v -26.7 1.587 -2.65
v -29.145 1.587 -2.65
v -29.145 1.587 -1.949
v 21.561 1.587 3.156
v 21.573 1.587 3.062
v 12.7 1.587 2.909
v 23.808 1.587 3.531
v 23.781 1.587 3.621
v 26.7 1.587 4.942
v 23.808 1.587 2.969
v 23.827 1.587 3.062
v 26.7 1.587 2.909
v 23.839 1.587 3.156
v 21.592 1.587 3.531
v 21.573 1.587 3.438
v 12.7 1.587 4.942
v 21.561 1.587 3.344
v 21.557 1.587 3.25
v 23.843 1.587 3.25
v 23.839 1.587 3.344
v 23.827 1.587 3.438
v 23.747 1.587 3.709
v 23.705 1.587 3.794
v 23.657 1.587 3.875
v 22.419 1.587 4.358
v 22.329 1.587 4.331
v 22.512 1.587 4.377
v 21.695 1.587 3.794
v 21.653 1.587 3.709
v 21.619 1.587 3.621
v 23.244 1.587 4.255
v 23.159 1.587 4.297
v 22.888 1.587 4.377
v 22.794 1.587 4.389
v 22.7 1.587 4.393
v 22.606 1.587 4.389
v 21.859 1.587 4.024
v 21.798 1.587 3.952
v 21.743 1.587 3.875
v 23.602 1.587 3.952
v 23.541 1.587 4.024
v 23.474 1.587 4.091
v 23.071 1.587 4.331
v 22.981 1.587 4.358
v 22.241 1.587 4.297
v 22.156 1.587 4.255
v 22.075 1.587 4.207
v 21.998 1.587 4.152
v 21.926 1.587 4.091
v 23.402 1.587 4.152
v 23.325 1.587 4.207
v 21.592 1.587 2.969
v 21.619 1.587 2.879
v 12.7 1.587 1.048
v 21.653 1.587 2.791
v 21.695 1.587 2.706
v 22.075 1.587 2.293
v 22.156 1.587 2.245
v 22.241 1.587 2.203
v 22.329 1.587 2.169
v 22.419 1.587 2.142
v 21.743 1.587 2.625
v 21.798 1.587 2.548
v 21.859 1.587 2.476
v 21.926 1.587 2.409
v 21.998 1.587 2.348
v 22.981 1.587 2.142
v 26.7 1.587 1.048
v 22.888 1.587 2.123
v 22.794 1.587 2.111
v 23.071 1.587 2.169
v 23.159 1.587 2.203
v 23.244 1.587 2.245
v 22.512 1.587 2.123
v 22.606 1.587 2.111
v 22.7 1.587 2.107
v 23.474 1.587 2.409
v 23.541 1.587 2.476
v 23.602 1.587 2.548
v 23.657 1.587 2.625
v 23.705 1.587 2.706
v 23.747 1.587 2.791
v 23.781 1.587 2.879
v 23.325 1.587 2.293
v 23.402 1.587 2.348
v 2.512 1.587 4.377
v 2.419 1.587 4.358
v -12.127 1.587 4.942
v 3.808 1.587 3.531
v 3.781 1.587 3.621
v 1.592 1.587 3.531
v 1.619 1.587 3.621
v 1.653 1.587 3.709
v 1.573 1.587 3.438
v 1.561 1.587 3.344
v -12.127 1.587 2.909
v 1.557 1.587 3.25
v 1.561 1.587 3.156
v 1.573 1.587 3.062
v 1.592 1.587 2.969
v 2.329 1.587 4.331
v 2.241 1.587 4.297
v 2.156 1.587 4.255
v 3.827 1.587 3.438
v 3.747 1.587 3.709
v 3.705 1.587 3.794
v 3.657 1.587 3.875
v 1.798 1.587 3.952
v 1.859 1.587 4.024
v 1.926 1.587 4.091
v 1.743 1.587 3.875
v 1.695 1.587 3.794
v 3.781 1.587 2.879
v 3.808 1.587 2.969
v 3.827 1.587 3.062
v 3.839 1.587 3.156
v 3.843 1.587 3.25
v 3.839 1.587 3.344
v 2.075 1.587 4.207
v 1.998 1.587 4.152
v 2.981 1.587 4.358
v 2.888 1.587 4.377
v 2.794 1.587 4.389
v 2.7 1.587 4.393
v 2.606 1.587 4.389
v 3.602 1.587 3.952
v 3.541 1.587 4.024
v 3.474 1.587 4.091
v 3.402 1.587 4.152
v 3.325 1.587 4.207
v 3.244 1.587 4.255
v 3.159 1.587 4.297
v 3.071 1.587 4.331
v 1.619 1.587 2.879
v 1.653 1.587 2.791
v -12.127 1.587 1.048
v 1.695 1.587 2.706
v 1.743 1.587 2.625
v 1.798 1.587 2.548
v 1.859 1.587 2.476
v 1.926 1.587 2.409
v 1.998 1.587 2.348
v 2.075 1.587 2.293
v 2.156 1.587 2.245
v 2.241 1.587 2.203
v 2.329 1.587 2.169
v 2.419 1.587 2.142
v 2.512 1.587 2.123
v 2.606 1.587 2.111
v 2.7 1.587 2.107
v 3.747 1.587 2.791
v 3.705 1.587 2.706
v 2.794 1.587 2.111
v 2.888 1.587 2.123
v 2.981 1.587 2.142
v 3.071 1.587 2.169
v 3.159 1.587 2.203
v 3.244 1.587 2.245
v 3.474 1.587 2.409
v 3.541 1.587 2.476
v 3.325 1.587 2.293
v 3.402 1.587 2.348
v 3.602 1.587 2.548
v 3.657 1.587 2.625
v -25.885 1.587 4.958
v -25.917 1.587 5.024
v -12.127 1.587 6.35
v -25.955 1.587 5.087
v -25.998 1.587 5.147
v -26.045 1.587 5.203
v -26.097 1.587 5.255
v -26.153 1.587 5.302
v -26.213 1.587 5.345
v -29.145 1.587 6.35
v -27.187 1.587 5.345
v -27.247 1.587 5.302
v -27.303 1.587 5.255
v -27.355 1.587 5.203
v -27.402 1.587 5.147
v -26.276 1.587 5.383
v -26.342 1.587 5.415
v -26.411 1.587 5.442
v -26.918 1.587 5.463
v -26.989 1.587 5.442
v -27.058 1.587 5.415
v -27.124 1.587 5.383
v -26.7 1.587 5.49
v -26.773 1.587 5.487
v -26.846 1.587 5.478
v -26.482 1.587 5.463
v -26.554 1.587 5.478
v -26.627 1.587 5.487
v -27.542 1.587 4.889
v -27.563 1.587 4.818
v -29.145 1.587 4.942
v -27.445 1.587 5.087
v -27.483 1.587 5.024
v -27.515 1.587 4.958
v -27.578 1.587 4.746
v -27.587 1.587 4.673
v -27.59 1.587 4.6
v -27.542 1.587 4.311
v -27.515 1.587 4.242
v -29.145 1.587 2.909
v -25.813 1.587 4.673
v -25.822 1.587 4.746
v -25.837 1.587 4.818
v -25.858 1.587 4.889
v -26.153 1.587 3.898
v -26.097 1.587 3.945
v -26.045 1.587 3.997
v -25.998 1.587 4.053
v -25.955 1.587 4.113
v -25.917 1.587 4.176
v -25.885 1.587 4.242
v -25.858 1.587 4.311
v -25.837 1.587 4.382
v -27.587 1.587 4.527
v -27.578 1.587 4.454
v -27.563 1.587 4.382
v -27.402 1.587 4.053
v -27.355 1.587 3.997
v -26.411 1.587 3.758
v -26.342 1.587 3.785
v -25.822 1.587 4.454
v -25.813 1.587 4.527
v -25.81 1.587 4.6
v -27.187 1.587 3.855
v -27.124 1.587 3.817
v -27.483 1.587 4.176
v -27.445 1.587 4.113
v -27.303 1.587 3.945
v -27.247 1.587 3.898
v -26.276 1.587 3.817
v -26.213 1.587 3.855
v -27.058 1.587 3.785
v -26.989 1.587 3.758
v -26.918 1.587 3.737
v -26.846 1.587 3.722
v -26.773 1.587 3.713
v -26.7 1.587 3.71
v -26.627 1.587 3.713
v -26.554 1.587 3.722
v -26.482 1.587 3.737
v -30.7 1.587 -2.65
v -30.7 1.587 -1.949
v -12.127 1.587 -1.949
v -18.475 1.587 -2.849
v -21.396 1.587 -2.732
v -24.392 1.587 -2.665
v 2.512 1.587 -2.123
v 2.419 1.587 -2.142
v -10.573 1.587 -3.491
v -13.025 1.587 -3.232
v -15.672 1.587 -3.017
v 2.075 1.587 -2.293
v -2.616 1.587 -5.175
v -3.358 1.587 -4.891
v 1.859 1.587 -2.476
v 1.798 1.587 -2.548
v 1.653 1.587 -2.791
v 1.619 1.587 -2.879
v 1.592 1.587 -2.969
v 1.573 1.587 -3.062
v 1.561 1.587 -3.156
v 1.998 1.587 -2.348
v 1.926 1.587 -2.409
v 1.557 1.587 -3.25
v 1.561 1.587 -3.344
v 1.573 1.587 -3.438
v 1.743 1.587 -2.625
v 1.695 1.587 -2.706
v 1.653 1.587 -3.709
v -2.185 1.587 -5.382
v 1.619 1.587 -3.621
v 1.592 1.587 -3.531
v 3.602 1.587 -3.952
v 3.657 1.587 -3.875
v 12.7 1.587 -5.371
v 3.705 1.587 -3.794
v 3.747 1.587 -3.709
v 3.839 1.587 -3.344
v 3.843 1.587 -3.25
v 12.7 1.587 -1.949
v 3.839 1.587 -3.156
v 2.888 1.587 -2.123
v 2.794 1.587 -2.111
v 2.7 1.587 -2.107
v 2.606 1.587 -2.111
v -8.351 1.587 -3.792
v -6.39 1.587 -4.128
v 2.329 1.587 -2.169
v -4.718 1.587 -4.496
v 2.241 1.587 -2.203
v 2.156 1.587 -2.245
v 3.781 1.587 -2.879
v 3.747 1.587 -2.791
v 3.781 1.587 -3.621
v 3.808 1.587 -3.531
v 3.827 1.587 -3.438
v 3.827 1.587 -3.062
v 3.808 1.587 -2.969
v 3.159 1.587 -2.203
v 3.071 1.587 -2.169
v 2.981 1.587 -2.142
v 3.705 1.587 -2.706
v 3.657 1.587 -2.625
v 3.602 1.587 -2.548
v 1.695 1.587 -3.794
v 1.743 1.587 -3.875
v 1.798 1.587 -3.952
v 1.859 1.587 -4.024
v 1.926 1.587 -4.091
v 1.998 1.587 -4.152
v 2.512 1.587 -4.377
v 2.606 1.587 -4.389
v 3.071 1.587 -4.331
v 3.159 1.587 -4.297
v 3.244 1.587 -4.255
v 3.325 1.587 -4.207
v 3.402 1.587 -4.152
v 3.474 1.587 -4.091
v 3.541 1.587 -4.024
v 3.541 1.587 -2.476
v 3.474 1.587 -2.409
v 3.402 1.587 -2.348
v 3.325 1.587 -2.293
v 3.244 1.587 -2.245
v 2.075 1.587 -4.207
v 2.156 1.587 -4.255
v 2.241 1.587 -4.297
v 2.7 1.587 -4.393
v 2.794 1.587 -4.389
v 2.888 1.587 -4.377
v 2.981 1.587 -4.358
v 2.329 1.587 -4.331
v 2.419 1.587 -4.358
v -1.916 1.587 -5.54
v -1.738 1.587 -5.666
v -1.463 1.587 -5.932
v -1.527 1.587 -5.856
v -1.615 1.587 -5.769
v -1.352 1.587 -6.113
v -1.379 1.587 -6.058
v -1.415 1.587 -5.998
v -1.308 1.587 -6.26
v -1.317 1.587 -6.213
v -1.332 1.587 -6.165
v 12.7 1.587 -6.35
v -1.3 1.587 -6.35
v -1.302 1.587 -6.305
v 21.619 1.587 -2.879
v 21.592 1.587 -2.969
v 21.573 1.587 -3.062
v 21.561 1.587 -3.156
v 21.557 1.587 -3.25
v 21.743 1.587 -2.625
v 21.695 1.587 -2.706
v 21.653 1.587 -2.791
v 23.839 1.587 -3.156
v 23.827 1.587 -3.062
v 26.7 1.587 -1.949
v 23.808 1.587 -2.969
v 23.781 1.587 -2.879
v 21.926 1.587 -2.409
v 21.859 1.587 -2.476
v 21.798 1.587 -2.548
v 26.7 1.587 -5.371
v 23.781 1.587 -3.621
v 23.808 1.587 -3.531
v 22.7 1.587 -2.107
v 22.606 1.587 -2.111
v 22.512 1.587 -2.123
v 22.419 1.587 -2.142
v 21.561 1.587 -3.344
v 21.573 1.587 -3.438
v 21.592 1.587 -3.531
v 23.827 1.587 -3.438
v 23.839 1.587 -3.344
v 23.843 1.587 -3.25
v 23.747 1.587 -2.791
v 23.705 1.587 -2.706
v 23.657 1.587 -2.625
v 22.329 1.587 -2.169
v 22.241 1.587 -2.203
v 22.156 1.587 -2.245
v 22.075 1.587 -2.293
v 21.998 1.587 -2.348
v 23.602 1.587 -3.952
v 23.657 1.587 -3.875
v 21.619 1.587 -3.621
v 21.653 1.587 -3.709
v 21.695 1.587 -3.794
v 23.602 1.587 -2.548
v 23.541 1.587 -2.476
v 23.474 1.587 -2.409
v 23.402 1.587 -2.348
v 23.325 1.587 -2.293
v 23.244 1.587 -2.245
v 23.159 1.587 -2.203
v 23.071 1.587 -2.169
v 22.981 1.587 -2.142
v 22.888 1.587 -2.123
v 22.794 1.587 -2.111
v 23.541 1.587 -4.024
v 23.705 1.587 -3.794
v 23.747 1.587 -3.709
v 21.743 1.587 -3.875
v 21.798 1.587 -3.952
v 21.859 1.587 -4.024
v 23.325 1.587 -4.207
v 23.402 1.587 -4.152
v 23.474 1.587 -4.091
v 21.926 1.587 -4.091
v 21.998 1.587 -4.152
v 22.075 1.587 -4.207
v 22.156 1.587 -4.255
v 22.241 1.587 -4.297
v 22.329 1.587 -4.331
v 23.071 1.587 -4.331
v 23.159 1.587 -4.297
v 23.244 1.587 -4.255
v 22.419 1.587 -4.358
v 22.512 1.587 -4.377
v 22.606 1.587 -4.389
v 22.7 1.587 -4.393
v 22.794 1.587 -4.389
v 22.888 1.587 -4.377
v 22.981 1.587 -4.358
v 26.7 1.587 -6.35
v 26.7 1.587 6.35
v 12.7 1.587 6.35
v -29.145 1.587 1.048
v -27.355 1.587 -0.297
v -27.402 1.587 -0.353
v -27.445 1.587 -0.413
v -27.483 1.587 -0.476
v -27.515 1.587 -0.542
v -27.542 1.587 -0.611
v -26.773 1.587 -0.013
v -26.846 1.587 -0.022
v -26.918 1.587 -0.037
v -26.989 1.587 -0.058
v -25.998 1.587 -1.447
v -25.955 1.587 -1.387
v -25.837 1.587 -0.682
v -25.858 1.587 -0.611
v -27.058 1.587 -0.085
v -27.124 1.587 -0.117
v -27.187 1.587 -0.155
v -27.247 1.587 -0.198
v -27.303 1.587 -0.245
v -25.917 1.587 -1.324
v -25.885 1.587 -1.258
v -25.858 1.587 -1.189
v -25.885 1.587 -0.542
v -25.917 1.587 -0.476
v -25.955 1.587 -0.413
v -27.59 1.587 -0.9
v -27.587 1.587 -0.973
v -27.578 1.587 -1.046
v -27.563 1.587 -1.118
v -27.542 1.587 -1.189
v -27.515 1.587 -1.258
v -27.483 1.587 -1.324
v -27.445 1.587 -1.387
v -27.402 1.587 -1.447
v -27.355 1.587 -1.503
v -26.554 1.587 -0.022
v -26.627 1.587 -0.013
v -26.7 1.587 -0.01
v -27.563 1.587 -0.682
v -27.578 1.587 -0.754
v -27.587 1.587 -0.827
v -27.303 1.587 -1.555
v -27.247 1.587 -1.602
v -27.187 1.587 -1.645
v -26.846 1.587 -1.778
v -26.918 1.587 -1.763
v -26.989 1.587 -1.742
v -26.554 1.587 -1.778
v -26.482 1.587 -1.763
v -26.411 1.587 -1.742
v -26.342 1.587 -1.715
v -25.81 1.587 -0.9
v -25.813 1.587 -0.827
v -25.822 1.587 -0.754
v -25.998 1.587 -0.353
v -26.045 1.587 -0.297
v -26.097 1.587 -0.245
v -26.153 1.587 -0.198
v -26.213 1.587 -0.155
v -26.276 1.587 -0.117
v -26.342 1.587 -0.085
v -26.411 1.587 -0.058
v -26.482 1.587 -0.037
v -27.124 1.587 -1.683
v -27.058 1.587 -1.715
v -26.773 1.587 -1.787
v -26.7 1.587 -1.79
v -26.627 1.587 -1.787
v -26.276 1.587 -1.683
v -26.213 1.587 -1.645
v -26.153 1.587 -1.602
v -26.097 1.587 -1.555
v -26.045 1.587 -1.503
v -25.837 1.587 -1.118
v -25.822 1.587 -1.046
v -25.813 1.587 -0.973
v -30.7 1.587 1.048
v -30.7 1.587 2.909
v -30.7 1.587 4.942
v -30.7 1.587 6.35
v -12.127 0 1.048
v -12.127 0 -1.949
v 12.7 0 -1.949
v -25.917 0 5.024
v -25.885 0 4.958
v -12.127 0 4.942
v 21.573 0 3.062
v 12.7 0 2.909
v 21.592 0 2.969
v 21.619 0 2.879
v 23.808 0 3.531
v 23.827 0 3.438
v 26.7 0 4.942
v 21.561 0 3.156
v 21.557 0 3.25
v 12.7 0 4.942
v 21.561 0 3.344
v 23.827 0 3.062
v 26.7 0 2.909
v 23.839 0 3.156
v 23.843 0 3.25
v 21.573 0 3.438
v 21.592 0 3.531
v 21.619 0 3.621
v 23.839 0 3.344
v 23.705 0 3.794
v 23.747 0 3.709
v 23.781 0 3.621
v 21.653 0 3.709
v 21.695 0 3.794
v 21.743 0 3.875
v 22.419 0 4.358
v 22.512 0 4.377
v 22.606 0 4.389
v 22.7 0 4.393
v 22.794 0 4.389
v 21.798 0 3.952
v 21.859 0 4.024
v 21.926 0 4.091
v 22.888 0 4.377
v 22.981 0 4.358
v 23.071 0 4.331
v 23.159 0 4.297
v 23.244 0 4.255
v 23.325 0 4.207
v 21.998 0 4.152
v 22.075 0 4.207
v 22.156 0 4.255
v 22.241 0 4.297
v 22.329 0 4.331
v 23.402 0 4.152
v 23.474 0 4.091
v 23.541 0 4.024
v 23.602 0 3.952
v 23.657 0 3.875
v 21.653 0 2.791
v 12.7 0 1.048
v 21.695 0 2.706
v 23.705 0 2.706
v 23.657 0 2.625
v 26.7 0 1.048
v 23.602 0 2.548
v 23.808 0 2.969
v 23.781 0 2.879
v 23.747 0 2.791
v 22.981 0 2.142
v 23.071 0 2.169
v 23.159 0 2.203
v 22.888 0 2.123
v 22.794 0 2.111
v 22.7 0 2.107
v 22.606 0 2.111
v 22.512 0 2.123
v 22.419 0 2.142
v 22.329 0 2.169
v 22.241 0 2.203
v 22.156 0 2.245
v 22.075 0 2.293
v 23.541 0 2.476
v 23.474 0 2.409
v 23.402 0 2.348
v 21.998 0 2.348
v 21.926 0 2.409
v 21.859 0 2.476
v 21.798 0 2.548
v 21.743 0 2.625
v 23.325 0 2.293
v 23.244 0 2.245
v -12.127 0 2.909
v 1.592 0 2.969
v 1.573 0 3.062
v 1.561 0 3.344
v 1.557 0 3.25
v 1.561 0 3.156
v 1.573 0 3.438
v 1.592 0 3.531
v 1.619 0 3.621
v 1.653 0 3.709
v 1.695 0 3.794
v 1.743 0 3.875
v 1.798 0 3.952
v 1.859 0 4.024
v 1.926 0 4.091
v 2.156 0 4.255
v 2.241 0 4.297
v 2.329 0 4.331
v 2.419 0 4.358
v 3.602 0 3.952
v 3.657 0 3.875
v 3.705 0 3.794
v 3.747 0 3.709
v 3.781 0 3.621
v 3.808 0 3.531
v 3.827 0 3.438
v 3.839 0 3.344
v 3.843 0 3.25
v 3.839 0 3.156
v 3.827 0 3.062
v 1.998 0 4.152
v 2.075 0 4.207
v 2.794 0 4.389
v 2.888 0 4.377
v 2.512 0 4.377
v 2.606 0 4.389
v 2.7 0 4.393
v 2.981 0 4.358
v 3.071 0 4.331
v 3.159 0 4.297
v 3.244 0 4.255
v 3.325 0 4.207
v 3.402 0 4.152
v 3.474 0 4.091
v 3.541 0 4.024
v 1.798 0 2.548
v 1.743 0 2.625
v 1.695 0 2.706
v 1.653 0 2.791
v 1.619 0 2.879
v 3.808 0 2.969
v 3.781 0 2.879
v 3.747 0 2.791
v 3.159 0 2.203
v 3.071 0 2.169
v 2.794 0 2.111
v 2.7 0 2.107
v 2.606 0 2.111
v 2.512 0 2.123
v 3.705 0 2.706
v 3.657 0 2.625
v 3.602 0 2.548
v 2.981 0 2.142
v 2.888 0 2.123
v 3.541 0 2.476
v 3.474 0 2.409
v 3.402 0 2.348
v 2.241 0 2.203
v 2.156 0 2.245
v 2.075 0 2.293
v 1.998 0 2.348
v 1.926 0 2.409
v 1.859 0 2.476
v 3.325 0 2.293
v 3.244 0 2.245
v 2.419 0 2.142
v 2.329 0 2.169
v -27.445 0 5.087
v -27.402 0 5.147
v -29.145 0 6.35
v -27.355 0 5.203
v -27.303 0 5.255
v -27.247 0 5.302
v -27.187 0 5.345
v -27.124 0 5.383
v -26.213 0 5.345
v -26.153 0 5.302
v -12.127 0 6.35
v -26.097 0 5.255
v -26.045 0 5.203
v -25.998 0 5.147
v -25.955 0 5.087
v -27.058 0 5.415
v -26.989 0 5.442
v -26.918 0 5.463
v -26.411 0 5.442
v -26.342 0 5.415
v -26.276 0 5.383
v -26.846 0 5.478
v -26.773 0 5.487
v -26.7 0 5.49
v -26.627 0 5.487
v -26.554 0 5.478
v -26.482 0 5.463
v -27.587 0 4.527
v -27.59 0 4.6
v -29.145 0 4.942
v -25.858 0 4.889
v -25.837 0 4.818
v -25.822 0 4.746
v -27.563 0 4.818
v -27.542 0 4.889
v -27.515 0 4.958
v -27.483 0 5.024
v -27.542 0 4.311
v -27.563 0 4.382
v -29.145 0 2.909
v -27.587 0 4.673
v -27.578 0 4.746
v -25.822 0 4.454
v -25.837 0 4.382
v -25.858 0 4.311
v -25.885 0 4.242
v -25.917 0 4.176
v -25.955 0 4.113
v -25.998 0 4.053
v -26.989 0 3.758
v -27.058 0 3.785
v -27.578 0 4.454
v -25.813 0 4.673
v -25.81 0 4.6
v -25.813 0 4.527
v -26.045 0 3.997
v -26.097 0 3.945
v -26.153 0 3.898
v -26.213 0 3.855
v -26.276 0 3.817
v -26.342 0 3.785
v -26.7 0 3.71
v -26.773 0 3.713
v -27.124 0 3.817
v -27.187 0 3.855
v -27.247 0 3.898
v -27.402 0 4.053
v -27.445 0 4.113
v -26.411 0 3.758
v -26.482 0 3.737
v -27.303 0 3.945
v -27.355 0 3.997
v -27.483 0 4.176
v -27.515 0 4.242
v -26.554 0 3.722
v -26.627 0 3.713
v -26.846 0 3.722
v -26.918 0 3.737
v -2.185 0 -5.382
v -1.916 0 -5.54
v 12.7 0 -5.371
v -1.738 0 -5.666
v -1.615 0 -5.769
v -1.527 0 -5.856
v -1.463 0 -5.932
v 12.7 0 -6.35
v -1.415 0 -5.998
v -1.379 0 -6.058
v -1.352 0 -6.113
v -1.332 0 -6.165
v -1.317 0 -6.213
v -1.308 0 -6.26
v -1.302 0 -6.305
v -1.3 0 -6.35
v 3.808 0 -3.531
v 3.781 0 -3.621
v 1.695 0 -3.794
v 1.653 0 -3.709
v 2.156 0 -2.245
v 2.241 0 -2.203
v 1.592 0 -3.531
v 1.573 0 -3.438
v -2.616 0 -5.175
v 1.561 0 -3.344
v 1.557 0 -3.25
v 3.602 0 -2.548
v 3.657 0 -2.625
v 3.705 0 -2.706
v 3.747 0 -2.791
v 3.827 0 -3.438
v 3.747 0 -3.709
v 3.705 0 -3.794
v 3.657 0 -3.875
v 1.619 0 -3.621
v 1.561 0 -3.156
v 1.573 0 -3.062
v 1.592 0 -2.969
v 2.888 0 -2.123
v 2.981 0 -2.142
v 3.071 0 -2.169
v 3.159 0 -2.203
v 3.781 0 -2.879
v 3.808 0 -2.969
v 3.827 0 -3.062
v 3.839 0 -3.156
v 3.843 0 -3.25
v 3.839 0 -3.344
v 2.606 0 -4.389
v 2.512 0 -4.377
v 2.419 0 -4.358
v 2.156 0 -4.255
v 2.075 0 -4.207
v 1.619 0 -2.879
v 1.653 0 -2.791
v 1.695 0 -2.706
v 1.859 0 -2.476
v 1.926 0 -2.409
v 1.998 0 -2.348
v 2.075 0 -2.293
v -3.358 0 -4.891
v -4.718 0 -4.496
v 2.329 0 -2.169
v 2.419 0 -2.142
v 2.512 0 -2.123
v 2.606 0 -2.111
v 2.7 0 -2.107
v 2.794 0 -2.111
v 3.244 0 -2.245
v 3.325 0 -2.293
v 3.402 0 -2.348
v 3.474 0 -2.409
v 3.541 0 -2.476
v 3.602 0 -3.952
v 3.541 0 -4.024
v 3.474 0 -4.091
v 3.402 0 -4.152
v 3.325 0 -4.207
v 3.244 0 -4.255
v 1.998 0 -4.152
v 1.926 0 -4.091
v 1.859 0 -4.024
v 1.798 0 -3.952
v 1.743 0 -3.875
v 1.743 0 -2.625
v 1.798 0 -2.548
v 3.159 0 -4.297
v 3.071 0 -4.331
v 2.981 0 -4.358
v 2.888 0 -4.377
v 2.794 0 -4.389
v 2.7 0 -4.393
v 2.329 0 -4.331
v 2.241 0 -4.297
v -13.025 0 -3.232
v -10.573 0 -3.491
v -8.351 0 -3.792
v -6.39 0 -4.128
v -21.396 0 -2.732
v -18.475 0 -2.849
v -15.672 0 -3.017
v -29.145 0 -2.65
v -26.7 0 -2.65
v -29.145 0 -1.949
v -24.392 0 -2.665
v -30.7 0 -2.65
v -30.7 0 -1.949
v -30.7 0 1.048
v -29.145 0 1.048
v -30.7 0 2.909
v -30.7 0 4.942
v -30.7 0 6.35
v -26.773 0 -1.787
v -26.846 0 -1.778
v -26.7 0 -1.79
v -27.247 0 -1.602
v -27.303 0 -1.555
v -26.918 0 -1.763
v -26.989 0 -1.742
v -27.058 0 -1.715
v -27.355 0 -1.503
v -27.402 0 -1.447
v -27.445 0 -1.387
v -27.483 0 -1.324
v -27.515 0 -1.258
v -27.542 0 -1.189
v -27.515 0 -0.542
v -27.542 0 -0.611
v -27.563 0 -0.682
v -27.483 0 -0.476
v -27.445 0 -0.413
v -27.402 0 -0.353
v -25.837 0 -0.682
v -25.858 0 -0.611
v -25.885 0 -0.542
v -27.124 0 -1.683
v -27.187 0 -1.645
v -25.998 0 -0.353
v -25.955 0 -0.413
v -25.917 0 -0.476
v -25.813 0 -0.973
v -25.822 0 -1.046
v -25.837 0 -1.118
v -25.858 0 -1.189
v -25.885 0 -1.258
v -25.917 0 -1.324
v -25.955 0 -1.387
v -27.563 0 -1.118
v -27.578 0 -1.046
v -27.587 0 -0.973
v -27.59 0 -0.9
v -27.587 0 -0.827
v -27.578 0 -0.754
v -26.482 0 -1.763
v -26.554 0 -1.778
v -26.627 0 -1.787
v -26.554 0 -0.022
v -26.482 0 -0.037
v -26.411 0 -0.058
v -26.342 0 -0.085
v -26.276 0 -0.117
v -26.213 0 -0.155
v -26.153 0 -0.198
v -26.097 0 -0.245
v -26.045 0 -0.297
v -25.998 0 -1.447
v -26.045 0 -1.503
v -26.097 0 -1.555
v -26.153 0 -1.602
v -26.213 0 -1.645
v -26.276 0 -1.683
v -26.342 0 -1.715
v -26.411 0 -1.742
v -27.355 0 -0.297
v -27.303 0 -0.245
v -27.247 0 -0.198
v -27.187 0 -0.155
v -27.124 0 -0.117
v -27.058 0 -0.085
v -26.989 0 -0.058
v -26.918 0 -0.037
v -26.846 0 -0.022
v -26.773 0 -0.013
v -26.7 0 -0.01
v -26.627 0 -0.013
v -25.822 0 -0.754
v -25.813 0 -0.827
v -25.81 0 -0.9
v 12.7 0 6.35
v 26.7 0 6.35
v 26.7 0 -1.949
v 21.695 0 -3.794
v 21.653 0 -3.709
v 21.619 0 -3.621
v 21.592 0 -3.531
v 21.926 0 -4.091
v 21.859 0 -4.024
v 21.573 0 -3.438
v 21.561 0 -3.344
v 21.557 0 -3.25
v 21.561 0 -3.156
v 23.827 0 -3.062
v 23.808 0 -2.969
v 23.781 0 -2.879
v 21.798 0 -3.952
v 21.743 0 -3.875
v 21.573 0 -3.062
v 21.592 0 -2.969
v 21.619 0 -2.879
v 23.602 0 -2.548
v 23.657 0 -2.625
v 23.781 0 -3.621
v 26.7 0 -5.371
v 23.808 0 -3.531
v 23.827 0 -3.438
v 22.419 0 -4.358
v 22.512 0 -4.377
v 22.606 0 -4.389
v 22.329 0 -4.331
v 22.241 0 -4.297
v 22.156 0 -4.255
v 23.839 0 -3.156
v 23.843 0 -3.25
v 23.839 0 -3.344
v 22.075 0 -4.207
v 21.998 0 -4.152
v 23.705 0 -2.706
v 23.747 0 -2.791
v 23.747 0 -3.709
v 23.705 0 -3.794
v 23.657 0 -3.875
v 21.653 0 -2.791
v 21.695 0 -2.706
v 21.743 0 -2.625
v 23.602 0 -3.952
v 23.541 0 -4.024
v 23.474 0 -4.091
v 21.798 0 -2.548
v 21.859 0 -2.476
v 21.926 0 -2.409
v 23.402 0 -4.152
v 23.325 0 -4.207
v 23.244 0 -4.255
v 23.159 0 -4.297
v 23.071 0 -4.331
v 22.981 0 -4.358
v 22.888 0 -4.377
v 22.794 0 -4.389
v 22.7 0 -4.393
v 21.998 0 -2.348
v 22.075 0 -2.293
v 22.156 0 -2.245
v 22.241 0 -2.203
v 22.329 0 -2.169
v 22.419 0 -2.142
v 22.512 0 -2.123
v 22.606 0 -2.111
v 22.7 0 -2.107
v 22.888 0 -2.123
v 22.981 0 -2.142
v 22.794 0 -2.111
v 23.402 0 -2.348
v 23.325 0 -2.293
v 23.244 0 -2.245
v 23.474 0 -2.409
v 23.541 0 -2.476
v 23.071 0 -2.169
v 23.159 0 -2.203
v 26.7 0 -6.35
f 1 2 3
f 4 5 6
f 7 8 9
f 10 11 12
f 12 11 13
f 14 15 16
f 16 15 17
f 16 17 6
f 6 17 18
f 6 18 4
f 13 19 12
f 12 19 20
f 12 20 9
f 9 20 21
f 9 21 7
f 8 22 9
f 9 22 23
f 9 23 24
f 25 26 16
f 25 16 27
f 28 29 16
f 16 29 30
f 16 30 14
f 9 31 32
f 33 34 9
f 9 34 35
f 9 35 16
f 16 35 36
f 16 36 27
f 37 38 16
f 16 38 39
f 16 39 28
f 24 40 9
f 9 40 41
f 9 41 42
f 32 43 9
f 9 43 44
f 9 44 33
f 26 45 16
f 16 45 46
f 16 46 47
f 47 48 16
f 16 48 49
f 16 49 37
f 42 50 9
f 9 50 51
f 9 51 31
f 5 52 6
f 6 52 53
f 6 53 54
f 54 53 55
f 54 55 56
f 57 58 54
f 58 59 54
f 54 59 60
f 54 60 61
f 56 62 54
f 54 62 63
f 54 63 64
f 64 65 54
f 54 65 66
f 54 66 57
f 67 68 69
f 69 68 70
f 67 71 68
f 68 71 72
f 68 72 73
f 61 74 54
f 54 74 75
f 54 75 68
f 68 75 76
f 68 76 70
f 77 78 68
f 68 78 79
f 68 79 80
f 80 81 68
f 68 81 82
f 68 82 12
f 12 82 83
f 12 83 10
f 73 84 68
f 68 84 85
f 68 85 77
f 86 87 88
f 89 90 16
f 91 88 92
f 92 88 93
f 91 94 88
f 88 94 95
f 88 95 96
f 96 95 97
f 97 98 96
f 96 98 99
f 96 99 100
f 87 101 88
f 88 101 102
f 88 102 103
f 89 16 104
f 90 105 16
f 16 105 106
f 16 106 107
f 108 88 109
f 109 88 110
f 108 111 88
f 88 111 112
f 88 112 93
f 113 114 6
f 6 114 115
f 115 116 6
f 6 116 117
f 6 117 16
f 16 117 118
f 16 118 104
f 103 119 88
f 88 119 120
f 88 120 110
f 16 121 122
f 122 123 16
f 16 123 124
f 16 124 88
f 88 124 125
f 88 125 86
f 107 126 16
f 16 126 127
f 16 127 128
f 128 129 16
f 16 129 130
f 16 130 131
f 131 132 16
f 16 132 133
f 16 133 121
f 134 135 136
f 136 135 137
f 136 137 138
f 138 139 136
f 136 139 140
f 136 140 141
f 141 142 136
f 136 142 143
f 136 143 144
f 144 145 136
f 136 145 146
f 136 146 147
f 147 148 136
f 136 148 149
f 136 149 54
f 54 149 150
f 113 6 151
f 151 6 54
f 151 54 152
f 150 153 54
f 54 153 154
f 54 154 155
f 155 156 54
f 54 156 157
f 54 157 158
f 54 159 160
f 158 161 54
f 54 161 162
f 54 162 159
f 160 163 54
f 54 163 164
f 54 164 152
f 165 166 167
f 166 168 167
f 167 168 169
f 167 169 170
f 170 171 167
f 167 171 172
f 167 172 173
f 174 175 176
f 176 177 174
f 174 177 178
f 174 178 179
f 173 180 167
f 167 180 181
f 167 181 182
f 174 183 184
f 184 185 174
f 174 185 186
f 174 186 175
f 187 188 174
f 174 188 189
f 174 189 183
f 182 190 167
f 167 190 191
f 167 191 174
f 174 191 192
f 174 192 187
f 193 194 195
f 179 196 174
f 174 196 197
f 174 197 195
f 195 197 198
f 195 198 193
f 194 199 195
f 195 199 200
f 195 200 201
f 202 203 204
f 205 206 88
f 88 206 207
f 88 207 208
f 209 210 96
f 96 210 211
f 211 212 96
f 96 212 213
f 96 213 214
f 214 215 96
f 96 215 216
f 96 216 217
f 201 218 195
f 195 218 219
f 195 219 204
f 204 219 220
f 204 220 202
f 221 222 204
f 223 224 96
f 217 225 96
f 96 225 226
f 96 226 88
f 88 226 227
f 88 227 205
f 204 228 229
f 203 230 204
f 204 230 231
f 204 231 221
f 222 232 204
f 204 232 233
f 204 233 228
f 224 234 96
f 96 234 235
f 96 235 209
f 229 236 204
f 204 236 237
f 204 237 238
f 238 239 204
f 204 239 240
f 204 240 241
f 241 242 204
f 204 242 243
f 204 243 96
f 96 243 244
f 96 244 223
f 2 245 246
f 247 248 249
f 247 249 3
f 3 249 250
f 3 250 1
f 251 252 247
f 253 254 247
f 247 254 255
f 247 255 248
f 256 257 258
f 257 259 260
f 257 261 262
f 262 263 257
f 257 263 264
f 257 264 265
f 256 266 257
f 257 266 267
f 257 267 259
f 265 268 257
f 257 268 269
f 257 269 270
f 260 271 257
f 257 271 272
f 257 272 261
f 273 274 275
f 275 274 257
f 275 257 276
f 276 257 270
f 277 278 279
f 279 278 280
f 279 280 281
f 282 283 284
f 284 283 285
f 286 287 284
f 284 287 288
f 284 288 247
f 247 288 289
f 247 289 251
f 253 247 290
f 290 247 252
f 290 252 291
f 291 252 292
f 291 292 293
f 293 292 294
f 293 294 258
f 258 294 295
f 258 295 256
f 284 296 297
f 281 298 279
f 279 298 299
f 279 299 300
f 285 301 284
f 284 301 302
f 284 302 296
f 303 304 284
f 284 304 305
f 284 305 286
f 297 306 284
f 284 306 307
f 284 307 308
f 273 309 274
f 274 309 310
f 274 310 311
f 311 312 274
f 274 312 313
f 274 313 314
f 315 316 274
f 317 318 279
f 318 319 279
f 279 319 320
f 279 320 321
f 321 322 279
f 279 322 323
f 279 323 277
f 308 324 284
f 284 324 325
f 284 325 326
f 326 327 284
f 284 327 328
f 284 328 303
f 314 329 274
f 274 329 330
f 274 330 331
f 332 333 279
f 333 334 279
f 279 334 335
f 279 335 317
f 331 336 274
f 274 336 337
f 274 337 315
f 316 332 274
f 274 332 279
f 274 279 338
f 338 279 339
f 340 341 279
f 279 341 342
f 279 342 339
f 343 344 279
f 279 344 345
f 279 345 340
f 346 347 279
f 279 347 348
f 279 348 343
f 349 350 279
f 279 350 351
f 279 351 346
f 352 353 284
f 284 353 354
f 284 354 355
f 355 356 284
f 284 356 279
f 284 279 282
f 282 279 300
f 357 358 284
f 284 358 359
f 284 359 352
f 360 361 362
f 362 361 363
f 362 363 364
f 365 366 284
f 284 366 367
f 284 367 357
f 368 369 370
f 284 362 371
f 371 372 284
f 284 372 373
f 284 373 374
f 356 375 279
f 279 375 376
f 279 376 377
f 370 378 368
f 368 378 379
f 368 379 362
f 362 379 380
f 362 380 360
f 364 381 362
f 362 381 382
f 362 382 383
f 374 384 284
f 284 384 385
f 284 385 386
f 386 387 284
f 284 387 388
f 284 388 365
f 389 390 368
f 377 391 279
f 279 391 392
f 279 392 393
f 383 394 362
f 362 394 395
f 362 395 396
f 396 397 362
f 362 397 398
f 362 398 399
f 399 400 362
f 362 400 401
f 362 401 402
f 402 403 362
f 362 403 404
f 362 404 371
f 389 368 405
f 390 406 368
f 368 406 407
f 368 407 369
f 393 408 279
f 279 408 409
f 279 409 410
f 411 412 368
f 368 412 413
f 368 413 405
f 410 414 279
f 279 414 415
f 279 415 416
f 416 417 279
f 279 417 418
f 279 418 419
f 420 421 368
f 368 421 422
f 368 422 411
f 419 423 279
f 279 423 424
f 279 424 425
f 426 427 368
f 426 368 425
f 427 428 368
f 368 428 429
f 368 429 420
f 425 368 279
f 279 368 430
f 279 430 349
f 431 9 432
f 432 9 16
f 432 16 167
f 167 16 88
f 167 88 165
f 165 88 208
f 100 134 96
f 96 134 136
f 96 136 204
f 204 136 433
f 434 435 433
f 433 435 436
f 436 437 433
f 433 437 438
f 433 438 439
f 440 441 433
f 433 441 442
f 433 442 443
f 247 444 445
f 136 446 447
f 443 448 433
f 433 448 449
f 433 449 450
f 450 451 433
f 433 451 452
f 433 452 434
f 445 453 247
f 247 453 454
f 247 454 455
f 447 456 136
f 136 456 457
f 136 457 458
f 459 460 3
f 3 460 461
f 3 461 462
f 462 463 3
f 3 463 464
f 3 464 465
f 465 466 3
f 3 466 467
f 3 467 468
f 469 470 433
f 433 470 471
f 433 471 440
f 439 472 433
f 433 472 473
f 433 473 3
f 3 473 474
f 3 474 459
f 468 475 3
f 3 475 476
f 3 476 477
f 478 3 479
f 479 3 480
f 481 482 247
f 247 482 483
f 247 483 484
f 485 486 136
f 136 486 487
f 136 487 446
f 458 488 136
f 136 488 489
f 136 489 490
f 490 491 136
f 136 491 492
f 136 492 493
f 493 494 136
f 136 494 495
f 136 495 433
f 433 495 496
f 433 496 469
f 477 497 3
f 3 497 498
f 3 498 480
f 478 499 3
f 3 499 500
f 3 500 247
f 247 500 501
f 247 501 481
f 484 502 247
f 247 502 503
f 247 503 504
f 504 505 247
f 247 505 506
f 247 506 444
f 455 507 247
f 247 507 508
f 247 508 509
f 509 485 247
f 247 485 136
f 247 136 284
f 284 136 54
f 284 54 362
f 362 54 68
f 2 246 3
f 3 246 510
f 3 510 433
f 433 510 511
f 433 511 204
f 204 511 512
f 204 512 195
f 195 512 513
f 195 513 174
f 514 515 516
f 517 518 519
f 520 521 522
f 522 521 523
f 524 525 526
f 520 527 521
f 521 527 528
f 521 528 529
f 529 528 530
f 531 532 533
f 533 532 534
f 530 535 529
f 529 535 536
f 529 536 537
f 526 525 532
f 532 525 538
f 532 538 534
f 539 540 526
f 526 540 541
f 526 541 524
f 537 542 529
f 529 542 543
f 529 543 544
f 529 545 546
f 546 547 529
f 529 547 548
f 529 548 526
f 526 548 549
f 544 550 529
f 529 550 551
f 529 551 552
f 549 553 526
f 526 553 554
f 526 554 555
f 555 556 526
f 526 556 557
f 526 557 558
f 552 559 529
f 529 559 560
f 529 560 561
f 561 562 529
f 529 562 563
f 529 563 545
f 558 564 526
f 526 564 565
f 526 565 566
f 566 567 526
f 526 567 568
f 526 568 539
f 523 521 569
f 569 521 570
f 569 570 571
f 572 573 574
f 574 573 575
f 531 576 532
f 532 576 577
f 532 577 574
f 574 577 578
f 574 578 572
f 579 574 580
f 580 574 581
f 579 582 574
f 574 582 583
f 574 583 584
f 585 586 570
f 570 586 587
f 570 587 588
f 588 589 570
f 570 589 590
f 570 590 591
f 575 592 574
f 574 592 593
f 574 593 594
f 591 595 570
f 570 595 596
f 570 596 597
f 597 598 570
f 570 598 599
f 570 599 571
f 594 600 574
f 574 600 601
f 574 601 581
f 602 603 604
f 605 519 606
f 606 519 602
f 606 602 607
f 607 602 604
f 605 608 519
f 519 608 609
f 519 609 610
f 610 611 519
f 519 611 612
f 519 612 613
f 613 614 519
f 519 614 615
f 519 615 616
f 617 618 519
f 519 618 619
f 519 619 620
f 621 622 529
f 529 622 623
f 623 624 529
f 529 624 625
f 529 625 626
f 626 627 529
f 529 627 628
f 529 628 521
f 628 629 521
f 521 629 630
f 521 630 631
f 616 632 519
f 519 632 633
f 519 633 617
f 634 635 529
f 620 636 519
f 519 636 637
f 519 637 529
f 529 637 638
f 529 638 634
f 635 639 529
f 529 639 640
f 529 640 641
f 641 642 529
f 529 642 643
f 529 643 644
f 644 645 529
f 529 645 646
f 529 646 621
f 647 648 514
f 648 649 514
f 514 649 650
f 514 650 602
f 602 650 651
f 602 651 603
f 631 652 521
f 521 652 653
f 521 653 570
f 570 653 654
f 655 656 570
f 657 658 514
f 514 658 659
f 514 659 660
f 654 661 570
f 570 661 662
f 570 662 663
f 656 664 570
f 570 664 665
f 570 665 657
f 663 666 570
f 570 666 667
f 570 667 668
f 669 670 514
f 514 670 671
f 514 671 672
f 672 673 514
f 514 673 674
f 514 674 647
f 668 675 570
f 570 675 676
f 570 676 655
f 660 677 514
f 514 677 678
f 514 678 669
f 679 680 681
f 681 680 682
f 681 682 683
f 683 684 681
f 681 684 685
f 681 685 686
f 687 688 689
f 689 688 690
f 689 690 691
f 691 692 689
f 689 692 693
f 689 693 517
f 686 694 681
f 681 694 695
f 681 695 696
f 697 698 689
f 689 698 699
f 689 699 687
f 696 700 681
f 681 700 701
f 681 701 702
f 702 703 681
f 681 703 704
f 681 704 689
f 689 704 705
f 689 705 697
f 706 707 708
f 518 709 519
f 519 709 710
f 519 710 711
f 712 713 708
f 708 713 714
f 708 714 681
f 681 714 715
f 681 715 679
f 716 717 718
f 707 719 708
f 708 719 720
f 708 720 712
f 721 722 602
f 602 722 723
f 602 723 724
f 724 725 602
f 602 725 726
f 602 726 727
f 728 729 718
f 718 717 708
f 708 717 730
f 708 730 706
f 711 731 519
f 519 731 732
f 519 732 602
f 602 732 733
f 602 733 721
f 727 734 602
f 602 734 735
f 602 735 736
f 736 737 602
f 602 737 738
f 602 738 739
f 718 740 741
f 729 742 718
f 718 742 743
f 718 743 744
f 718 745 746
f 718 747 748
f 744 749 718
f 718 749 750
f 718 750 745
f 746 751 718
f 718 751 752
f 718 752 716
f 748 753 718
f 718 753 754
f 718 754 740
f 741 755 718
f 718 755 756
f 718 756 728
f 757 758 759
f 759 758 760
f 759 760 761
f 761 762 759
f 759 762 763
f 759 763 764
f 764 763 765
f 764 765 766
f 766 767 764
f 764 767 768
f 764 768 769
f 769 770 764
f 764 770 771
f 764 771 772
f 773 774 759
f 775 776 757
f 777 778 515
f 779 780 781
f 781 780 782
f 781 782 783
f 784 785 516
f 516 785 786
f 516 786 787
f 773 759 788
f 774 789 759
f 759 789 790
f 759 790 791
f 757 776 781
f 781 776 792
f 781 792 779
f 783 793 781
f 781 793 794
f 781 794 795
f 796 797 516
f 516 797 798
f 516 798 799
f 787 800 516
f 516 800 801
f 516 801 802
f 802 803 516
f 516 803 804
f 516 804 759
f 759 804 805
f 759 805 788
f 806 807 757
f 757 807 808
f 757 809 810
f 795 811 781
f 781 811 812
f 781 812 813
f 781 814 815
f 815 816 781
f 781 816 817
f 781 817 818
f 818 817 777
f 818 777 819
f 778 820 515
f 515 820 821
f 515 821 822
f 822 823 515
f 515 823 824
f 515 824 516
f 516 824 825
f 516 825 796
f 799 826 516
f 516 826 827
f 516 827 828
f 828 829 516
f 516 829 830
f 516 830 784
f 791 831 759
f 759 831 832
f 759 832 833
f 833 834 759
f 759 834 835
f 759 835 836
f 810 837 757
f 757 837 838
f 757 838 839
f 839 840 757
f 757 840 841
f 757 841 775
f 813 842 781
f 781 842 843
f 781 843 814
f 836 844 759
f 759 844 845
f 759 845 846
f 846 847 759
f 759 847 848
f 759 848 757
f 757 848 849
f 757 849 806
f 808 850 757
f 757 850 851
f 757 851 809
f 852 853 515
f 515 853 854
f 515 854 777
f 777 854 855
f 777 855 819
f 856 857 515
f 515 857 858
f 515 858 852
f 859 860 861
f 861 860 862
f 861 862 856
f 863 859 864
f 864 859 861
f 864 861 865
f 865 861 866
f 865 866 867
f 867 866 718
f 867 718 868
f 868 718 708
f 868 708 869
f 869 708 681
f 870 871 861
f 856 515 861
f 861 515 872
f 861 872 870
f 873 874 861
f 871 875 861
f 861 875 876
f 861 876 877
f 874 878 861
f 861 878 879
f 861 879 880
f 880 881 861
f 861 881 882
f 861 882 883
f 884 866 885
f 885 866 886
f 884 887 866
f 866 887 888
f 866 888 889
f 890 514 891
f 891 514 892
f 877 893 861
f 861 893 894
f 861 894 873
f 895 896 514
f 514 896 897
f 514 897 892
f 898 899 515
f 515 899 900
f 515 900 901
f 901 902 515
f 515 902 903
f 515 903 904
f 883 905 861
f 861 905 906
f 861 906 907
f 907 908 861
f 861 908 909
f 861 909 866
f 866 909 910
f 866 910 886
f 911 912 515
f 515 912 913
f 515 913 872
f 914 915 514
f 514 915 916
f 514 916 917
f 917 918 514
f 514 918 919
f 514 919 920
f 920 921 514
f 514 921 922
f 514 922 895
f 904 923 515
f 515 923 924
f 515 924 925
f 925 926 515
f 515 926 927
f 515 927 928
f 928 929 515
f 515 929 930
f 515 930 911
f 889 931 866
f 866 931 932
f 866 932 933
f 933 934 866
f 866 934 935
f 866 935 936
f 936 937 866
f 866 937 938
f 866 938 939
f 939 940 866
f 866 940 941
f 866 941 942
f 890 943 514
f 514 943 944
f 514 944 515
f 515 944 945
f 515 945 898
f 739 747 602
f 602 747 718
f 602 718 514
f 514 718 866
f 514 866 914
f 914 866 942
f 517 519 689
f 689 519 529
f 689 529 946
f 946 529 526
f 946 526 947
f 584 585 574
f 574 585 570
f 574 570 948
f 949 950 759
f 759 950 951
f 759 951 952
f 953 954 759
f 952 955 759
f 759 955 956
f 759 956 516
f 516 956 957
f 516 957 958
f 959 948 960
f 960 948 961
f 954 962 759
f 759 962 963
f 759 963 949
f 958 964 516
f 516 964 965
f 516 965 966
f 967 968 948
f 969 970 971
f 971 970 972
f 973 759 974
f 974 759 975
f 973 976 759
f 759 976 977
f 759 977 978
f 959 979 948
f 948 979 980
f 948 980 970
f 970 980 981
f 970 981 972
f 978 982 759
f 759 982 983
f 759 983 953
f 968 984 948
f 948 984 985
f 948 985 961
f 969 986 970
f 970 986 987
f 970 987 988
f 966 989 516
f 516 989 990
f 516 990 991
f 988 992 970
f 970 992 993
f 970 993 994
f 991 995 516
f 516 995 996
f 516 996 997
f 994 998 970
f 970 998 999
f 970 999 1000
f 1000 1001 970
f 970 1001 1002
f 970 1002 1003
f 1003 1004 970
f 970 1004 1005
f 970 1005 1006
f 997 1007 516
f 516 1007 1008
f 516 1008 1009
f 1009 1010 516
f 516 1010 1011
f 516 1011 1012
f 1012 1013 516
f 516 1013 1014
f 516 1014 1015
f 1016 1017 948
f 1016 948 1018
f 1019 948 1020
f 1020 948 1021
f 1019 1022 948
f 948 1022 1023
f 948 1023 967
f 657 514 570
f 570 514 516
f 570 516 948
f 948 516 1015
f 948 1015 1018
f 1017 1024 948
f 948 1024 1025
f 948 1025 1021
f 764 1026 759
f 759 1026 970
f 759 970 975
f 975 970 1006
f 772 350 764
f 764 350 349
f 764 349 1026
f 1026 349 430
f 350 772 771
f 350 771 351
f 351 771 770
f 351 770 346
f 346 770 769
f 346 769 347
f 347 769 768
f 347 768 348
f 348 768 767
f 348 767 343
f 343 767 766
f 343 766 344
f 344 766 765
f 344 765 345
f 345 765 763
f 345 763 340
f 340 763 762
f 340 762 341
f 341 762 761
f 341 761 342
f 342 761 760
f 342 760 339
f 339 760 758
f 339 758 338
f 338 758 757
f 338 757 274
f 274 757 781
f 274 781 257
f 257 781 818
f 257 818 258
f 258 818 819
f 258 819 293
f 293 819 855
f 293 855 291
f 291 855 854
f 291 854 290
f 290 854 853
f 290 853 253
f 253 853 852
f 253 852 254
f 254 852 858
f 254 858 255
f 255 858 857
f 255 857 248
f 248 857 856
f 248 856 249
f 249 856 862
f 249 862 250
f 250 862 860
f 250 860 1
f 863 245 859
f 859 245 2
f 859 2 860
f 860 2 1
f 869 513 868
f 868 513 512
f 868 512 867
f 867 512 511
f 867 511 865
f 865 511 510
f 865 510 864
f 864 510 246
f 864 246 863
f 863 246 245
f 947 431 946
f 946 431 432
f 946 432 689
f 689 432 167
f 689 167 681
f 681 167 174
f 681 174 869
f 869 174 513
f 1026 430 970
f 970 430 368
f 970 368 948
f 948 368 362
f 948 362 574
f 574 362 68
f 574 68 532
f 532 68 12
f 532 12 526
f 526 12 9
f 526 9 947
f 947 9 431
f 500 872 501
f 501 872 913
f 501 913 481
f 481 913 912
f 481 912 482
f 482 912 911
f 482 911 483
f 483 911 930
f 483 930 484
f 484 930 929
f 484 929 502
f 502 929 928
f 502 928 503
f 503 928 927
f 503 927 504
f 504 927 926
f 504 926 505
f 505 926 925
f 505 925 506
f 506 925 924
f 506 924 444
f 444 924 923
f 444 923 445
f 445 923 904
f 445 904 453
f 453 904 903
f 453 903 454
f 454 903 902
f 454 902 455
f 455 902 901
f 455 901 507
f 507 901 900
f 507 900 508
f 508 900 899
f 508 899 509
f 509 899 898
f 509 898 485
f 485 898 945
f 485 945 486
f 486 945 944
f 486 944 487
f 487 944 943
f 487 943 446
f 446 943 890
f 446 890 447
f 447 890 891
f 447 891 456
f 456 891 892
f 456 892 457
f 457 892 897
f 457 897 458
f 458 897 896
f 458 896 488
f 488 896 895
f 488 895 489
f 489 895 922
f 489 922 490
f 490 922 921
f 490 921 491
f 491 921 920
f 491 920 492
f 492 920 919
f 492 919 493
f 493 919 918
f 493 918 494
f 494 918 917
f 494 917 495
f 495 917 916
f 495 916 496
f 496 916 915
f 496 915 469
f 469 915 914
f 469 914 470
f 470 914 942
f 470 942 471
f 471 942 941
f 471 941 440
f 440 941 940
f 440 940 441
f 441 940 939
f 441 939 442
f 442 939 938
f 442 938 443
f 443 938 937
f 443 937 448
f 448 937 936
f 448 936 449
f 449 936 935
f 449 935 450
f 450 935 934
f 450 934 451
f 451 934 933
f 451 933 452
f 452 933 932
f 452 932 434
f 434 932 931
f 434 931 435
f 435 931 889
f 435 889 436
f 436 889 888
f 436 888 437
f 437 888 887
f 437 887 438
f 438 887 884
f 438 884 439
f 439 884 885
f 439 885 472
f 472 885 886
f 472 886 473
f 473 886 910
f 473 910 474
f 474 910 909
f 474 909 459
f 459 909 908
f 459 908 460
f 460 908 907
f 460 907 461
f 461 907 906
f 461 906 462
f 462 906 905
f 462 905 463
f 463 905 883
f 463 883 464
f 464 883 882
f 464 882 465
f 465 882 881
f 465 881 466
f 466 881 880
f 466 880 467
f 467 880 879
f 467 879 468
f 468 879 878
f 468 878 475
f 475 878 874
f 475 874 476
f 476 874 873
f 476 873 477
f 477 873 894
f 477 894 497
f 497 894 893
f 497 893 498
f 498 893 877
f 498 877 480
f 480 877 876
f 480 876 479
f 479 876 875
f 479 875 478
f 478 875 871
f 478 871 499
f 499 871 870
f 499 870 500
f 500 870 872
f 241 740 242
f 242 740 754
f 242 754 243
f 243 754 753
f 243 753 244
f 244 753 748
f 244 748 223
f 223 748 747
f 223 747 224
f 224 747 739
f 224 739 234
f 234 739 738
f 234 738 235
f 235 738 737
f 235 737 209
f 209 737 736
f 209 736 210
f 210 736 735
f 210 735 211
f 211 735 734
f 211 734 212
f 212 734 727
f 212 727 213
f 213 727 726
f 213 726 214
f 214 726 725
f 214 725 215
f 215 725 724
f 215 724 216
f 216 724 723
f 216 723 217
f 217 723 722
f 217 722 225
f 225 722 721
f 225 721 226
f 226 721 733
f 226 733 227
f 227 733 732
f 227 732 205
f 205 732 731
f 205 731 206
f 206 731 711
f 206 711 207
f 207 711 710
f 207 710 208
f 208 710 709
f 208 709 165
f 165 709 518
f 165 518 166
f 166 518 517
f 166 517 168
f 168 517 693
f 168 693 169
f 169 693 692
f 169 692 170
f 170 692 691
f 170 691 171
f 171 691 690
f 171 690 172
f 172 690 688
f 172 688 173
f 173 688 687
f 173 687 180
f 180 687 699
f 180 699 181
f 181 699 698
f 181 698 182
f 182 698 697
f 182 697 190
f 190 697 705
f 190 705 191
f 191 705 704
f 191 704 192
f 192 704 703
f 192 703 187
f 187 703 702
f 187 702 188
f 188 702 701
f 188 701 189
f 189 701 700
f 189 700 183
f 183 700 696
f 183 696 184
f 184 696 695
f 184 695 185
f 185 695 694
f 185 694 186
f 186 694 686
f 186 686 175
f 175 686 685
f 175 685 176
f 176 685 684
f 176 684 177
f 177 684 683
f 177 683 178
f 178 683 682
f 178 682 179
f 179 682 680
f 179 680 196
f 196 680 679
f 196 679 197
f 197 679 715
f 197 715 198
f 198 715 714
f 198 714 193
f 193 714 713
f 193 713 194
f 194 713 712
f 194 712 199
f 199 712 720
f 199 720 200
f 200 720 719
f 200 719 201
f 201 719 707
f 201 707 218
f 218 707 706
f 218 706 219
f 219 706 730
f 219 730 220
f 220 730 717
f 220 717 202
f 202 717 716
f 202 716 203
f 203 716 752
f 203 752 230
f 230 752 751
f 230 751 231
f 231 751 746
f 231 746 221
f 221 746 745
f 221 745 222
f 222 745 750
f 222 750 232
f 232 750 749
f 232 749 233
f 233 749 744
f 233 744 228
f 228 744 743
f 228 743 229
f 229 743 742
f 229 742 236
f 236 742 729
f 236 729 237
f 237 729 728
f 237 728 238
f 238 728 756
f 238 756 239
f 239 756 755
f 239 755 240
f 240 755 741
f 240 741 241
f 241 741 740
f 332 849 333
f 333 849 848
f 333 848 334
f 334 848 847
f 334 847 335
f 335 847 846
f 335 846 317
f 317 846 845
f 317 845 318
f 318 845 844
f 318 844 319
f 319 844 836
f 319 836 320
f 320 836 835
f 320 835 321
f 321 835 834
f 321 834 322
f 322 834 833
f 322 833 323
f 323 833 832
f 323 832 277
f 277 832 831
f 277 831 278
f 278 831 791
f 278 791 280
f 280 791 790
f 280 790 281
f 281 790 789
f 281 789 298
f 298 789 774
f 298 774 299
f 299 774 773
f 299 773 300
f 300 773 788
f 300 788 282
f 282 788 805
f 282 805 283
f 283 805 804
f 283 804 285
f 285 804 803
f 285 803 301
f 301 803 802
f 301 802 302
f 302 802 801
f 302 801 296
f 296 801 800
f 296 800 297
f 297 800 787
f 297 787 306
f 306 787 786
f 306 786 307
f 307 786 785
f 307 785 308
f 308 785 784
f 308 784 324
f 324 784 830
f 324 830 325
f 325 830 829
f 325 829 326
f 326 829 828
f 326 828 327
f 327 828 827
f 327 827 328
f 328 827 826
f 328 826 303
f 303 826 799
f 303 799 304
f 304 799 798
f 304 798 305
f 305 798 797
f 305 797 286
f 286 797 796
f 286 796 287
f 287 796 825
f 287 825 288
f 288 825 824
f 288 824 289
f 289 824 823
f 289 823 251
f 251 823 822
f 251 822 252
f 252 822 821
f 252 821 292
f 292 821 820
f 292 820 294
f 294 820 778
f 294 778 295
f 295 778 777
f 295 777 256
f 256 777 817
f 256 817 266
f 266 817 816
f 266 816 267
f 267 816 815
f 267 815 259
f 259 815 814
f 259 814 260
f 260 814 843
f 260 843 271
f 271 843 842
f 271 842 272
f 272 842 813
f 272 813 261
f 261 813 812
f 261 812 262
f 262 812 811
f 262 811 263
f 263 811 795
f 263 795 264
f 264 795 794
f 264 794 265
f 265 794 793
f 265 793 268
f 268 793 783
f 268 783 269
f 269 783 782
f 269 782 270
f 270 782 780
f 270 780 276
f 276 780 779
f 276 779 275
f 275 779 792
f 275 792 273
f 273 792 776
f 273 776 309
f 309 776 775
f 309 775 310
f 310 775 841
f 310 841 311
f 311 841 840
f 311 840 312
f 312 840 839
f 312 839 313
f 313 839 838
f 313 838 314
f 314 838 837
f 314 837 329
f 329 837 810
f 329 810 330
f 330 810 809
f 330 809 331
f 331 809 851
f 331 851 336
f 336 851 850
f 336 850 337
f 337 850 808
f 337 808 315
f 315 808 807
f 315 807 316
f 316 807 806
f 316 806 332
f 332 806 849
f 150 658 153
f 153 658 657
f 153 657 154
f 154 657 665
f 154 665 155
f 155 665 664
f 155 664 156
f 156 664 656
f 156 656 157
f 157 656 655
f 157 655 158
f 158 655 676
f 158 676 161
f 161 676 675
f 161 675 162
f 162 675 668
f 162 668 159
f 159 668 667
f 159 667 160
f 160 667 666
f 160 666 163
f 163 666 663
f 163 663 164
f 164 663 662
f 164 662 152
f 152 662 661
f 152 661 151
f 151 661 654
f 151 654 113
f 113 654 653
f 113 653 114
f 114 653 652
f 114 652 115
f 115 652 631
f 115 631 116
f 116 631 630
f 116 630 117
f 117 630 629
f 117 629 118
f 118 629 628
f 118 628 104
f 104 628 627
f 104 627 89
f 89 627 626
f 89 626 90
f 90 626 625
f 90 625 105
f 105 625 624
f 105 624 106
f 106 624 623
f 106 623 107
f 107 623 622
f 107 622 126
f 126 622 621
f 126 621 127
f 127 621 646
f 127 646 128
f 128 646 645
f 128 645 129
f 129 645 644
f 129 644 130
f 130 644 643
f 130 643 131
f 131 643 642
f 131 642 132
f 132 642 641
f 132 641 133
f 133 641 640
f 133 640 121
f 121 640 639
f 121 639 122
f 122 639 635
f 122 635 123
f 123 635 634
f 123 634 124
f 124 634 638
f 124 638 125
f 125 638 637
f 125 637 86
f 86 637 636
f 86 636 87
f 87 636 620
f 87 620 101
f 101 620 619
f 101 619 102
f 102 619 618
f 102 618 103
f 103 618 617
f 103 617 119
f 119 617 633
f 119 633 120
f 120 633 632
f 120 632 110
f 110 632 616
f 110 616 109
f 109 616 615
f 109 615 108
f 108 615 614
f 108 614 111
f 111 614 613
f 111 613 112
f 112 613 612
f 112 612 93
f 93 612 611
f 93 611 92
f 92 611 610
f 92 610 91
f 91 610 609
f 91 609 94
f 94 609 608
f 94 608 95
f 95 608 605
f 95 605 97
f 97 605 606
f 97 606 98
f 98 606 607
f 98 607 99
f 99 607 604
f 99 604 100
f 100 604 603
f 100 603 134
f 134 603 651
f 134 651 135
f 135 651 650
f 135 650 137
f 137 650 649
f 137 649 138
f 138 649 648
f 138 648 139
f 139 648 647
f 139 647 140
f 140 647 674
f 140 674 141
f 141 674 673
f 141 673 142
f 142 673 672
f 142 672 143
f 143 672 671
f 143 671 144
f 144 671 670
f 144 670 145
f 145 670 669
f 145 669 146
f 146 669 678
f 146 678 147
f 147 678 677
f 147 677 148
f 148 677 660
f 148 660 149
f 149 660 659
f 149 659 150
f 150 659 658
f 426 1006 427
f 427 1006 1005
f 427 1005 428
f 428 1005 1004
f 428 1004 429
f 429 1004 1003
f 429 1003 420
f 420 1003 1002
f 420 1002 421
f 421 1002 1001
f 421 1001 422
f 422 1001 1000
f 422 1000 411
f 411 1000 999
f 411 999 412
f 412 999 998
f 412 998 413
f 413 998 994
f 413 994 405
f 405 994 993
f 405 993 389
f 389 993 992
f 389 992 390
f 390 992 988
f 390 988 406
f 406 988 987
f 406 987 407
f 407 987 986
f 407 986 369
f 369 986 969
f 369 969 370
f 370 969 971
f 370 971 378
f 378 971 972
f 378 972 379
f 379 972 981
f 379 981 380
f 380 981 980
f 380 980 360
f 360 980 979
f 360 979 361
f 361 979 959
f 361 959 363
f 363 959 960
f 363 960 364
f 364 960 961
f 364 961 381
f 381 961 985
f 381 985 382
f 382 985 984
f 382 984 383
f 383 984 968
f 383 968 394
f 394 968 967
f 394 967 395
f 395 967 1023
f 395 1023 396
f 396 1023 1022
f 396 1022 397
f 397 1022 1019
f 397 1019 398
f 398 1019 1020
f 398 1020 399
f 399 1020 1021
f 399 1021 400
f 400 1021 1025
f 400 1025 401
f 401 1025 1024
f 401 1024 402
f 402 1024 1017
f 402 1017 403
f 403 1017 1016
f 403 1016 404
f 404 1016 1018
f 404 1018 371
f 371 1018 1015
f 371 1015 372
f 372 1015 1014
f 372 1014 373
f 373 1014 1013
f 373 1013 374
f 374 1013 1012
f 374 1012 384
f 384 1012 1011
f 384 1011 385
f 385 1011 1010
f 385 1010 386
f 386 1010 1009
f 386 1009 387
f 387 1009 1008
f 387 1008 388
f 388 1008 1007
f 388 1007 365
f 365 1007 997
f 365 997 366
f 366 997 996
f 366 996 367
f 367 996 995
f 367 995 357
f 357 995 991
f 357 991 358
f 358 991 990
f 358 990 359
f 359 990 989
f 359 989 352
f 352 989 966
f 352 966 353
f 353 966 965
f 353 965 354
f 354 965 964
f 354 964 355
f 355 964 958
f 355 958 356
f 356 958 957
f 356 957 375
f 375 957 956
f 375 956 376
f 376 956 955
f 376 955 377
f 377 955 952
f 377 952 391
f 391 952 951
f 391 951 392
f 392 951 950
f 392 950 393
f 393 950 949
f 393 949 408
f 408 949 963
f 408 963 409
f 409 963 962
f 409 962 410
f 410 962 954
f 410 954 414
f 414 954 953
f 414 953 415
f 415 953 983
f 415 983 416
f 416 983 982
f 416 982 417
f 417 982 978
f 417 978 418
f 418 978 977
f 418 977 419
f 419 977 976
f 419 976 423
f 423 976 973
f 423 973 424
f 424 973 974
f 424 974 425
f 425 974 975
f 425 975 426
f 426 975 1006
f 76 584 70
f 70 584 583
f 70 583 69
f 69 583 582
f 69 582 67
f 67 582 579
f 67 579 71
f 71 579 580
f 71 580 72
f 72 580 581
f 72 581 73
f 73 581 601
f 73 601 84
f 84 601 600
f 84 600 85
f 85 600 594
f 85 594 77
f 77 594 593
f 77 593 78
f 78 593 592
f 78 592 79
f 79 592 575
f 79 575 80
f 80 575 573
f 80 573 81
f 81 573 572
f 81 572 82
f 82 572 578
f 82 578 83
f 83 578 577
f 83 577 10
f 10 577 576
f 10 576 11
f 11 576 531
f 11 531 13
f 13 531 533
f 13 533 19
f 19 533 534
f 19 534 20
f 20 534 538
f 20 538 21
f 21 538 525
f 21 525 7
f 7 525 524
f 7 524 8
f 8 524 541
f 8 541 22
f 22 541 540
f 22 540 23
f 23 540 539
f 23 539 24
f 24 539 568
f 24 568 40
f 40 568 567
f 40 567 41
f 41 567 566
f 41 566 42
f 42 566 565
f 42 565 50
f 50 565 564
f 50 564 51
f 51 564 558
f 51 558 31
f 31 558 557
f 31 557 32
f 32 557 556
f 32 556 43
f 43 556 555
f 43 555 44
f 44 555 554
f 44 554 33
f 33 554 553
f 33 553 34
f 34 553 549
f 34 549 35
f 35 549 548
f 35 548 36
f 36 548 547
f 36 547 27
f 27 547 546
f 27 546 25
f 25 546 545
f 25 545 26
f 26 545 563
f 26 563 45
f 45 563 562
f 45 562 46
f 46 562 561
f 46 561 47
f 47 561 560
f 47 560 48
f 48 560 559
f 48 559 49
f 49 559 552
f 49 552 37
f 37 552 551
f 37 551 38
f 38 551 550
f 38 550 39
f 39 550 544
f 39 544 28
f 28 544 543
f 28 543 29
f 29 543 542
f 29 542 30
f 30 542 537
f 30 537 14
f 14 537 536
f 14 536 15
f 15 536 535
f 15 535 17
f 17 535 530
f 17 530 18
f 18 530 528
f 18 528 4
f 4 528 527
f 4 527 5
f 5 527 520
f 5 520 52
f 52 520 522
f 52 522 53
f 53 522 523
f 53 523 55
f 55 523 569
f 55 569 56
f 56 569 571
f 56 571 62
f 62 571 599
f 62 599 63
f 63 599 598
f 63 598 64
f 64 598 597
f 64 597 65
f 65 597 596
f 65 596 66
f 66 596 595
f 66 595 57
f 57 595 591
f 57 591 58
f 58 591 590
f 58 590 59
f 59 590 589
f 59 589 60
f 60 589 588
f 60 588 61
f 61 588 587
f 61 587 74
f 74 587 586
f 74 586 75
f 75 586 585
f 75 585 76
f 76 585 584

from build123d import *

# Parameters (mm, degrees)
SKETCH1_R           = 0.89
SKETCH1_R_2         = 1.143
BOSS_EXTRUDE1_DEPTH = 1.5875


with BuildPart() as part:
    # Sketch1 → Boss-Extrude1 (new body)
    with BuildSketch(Plane(origin=(0, 0, 0), x_dir=(1, 0, 0), z_dir=(0, 1, 0))):
        with BuildLine():
            Line((-26.7, -6.35), (26.7, -6.35))
            Line((26.7, -6.35), (26.7, 6.35))
            Line((26.7, 6.35), (-1.3, 6.35))
            add(Edge.make_bspline(
                [(-26.7, 2.65), (-1.3, 2.65), (-1.3, 6.35)],
                knots=[4.71238898, 4.71238898, 4.71238898, 6.283185307, 6.283185307, 6.283185307], degree=2, weights=[1, 0.707106781, 1]))
            Line((-26.7, 2.65), (-30.7, 2.65))
            Line((-30.7, 2.65), (-30.7, -6.35))
            Line((-30.7, -6.35), (-26.7, -6.35))
        make_face()
        with Locations(Location((-26.7, 0.9, 0), (0, 0, 270))):
            Circle(SKETCH1_R, mode=Mode.SUBTRACT)
        with Locations(Location((-26.7, -4.6, 0), (0, 0, 270))):
            Circle(SKETCH1_R, mode=Mode.SUBTRACT)
        with Locations(Location((2.7, 3.25, 0), (0, 0, 270))):
            Circle(SKETCH1_R_2, mode=Mode.SUBTRACT)
        with Locations(Location((2.7, -3.25, 0), (0, 0, 270))):
            Circle(SKETCH1_R_2, mode=Mode.SUBTRACT)
        with Locations(Location((22.7, 3.25, 0), (0, 0, 270))):
            Circle(SKETCH1_R_2, mode=Mode.SUBTRACT)
        with Locations(Location((22.7, -3.25, 0), (0, 0, 270))):
            Circle(SKETCH1_R_2, mode=Mode.SUBTRACT)
    extrude(amount=BOSS_EXTRUDE1_DEPTH)


solid = part.part
